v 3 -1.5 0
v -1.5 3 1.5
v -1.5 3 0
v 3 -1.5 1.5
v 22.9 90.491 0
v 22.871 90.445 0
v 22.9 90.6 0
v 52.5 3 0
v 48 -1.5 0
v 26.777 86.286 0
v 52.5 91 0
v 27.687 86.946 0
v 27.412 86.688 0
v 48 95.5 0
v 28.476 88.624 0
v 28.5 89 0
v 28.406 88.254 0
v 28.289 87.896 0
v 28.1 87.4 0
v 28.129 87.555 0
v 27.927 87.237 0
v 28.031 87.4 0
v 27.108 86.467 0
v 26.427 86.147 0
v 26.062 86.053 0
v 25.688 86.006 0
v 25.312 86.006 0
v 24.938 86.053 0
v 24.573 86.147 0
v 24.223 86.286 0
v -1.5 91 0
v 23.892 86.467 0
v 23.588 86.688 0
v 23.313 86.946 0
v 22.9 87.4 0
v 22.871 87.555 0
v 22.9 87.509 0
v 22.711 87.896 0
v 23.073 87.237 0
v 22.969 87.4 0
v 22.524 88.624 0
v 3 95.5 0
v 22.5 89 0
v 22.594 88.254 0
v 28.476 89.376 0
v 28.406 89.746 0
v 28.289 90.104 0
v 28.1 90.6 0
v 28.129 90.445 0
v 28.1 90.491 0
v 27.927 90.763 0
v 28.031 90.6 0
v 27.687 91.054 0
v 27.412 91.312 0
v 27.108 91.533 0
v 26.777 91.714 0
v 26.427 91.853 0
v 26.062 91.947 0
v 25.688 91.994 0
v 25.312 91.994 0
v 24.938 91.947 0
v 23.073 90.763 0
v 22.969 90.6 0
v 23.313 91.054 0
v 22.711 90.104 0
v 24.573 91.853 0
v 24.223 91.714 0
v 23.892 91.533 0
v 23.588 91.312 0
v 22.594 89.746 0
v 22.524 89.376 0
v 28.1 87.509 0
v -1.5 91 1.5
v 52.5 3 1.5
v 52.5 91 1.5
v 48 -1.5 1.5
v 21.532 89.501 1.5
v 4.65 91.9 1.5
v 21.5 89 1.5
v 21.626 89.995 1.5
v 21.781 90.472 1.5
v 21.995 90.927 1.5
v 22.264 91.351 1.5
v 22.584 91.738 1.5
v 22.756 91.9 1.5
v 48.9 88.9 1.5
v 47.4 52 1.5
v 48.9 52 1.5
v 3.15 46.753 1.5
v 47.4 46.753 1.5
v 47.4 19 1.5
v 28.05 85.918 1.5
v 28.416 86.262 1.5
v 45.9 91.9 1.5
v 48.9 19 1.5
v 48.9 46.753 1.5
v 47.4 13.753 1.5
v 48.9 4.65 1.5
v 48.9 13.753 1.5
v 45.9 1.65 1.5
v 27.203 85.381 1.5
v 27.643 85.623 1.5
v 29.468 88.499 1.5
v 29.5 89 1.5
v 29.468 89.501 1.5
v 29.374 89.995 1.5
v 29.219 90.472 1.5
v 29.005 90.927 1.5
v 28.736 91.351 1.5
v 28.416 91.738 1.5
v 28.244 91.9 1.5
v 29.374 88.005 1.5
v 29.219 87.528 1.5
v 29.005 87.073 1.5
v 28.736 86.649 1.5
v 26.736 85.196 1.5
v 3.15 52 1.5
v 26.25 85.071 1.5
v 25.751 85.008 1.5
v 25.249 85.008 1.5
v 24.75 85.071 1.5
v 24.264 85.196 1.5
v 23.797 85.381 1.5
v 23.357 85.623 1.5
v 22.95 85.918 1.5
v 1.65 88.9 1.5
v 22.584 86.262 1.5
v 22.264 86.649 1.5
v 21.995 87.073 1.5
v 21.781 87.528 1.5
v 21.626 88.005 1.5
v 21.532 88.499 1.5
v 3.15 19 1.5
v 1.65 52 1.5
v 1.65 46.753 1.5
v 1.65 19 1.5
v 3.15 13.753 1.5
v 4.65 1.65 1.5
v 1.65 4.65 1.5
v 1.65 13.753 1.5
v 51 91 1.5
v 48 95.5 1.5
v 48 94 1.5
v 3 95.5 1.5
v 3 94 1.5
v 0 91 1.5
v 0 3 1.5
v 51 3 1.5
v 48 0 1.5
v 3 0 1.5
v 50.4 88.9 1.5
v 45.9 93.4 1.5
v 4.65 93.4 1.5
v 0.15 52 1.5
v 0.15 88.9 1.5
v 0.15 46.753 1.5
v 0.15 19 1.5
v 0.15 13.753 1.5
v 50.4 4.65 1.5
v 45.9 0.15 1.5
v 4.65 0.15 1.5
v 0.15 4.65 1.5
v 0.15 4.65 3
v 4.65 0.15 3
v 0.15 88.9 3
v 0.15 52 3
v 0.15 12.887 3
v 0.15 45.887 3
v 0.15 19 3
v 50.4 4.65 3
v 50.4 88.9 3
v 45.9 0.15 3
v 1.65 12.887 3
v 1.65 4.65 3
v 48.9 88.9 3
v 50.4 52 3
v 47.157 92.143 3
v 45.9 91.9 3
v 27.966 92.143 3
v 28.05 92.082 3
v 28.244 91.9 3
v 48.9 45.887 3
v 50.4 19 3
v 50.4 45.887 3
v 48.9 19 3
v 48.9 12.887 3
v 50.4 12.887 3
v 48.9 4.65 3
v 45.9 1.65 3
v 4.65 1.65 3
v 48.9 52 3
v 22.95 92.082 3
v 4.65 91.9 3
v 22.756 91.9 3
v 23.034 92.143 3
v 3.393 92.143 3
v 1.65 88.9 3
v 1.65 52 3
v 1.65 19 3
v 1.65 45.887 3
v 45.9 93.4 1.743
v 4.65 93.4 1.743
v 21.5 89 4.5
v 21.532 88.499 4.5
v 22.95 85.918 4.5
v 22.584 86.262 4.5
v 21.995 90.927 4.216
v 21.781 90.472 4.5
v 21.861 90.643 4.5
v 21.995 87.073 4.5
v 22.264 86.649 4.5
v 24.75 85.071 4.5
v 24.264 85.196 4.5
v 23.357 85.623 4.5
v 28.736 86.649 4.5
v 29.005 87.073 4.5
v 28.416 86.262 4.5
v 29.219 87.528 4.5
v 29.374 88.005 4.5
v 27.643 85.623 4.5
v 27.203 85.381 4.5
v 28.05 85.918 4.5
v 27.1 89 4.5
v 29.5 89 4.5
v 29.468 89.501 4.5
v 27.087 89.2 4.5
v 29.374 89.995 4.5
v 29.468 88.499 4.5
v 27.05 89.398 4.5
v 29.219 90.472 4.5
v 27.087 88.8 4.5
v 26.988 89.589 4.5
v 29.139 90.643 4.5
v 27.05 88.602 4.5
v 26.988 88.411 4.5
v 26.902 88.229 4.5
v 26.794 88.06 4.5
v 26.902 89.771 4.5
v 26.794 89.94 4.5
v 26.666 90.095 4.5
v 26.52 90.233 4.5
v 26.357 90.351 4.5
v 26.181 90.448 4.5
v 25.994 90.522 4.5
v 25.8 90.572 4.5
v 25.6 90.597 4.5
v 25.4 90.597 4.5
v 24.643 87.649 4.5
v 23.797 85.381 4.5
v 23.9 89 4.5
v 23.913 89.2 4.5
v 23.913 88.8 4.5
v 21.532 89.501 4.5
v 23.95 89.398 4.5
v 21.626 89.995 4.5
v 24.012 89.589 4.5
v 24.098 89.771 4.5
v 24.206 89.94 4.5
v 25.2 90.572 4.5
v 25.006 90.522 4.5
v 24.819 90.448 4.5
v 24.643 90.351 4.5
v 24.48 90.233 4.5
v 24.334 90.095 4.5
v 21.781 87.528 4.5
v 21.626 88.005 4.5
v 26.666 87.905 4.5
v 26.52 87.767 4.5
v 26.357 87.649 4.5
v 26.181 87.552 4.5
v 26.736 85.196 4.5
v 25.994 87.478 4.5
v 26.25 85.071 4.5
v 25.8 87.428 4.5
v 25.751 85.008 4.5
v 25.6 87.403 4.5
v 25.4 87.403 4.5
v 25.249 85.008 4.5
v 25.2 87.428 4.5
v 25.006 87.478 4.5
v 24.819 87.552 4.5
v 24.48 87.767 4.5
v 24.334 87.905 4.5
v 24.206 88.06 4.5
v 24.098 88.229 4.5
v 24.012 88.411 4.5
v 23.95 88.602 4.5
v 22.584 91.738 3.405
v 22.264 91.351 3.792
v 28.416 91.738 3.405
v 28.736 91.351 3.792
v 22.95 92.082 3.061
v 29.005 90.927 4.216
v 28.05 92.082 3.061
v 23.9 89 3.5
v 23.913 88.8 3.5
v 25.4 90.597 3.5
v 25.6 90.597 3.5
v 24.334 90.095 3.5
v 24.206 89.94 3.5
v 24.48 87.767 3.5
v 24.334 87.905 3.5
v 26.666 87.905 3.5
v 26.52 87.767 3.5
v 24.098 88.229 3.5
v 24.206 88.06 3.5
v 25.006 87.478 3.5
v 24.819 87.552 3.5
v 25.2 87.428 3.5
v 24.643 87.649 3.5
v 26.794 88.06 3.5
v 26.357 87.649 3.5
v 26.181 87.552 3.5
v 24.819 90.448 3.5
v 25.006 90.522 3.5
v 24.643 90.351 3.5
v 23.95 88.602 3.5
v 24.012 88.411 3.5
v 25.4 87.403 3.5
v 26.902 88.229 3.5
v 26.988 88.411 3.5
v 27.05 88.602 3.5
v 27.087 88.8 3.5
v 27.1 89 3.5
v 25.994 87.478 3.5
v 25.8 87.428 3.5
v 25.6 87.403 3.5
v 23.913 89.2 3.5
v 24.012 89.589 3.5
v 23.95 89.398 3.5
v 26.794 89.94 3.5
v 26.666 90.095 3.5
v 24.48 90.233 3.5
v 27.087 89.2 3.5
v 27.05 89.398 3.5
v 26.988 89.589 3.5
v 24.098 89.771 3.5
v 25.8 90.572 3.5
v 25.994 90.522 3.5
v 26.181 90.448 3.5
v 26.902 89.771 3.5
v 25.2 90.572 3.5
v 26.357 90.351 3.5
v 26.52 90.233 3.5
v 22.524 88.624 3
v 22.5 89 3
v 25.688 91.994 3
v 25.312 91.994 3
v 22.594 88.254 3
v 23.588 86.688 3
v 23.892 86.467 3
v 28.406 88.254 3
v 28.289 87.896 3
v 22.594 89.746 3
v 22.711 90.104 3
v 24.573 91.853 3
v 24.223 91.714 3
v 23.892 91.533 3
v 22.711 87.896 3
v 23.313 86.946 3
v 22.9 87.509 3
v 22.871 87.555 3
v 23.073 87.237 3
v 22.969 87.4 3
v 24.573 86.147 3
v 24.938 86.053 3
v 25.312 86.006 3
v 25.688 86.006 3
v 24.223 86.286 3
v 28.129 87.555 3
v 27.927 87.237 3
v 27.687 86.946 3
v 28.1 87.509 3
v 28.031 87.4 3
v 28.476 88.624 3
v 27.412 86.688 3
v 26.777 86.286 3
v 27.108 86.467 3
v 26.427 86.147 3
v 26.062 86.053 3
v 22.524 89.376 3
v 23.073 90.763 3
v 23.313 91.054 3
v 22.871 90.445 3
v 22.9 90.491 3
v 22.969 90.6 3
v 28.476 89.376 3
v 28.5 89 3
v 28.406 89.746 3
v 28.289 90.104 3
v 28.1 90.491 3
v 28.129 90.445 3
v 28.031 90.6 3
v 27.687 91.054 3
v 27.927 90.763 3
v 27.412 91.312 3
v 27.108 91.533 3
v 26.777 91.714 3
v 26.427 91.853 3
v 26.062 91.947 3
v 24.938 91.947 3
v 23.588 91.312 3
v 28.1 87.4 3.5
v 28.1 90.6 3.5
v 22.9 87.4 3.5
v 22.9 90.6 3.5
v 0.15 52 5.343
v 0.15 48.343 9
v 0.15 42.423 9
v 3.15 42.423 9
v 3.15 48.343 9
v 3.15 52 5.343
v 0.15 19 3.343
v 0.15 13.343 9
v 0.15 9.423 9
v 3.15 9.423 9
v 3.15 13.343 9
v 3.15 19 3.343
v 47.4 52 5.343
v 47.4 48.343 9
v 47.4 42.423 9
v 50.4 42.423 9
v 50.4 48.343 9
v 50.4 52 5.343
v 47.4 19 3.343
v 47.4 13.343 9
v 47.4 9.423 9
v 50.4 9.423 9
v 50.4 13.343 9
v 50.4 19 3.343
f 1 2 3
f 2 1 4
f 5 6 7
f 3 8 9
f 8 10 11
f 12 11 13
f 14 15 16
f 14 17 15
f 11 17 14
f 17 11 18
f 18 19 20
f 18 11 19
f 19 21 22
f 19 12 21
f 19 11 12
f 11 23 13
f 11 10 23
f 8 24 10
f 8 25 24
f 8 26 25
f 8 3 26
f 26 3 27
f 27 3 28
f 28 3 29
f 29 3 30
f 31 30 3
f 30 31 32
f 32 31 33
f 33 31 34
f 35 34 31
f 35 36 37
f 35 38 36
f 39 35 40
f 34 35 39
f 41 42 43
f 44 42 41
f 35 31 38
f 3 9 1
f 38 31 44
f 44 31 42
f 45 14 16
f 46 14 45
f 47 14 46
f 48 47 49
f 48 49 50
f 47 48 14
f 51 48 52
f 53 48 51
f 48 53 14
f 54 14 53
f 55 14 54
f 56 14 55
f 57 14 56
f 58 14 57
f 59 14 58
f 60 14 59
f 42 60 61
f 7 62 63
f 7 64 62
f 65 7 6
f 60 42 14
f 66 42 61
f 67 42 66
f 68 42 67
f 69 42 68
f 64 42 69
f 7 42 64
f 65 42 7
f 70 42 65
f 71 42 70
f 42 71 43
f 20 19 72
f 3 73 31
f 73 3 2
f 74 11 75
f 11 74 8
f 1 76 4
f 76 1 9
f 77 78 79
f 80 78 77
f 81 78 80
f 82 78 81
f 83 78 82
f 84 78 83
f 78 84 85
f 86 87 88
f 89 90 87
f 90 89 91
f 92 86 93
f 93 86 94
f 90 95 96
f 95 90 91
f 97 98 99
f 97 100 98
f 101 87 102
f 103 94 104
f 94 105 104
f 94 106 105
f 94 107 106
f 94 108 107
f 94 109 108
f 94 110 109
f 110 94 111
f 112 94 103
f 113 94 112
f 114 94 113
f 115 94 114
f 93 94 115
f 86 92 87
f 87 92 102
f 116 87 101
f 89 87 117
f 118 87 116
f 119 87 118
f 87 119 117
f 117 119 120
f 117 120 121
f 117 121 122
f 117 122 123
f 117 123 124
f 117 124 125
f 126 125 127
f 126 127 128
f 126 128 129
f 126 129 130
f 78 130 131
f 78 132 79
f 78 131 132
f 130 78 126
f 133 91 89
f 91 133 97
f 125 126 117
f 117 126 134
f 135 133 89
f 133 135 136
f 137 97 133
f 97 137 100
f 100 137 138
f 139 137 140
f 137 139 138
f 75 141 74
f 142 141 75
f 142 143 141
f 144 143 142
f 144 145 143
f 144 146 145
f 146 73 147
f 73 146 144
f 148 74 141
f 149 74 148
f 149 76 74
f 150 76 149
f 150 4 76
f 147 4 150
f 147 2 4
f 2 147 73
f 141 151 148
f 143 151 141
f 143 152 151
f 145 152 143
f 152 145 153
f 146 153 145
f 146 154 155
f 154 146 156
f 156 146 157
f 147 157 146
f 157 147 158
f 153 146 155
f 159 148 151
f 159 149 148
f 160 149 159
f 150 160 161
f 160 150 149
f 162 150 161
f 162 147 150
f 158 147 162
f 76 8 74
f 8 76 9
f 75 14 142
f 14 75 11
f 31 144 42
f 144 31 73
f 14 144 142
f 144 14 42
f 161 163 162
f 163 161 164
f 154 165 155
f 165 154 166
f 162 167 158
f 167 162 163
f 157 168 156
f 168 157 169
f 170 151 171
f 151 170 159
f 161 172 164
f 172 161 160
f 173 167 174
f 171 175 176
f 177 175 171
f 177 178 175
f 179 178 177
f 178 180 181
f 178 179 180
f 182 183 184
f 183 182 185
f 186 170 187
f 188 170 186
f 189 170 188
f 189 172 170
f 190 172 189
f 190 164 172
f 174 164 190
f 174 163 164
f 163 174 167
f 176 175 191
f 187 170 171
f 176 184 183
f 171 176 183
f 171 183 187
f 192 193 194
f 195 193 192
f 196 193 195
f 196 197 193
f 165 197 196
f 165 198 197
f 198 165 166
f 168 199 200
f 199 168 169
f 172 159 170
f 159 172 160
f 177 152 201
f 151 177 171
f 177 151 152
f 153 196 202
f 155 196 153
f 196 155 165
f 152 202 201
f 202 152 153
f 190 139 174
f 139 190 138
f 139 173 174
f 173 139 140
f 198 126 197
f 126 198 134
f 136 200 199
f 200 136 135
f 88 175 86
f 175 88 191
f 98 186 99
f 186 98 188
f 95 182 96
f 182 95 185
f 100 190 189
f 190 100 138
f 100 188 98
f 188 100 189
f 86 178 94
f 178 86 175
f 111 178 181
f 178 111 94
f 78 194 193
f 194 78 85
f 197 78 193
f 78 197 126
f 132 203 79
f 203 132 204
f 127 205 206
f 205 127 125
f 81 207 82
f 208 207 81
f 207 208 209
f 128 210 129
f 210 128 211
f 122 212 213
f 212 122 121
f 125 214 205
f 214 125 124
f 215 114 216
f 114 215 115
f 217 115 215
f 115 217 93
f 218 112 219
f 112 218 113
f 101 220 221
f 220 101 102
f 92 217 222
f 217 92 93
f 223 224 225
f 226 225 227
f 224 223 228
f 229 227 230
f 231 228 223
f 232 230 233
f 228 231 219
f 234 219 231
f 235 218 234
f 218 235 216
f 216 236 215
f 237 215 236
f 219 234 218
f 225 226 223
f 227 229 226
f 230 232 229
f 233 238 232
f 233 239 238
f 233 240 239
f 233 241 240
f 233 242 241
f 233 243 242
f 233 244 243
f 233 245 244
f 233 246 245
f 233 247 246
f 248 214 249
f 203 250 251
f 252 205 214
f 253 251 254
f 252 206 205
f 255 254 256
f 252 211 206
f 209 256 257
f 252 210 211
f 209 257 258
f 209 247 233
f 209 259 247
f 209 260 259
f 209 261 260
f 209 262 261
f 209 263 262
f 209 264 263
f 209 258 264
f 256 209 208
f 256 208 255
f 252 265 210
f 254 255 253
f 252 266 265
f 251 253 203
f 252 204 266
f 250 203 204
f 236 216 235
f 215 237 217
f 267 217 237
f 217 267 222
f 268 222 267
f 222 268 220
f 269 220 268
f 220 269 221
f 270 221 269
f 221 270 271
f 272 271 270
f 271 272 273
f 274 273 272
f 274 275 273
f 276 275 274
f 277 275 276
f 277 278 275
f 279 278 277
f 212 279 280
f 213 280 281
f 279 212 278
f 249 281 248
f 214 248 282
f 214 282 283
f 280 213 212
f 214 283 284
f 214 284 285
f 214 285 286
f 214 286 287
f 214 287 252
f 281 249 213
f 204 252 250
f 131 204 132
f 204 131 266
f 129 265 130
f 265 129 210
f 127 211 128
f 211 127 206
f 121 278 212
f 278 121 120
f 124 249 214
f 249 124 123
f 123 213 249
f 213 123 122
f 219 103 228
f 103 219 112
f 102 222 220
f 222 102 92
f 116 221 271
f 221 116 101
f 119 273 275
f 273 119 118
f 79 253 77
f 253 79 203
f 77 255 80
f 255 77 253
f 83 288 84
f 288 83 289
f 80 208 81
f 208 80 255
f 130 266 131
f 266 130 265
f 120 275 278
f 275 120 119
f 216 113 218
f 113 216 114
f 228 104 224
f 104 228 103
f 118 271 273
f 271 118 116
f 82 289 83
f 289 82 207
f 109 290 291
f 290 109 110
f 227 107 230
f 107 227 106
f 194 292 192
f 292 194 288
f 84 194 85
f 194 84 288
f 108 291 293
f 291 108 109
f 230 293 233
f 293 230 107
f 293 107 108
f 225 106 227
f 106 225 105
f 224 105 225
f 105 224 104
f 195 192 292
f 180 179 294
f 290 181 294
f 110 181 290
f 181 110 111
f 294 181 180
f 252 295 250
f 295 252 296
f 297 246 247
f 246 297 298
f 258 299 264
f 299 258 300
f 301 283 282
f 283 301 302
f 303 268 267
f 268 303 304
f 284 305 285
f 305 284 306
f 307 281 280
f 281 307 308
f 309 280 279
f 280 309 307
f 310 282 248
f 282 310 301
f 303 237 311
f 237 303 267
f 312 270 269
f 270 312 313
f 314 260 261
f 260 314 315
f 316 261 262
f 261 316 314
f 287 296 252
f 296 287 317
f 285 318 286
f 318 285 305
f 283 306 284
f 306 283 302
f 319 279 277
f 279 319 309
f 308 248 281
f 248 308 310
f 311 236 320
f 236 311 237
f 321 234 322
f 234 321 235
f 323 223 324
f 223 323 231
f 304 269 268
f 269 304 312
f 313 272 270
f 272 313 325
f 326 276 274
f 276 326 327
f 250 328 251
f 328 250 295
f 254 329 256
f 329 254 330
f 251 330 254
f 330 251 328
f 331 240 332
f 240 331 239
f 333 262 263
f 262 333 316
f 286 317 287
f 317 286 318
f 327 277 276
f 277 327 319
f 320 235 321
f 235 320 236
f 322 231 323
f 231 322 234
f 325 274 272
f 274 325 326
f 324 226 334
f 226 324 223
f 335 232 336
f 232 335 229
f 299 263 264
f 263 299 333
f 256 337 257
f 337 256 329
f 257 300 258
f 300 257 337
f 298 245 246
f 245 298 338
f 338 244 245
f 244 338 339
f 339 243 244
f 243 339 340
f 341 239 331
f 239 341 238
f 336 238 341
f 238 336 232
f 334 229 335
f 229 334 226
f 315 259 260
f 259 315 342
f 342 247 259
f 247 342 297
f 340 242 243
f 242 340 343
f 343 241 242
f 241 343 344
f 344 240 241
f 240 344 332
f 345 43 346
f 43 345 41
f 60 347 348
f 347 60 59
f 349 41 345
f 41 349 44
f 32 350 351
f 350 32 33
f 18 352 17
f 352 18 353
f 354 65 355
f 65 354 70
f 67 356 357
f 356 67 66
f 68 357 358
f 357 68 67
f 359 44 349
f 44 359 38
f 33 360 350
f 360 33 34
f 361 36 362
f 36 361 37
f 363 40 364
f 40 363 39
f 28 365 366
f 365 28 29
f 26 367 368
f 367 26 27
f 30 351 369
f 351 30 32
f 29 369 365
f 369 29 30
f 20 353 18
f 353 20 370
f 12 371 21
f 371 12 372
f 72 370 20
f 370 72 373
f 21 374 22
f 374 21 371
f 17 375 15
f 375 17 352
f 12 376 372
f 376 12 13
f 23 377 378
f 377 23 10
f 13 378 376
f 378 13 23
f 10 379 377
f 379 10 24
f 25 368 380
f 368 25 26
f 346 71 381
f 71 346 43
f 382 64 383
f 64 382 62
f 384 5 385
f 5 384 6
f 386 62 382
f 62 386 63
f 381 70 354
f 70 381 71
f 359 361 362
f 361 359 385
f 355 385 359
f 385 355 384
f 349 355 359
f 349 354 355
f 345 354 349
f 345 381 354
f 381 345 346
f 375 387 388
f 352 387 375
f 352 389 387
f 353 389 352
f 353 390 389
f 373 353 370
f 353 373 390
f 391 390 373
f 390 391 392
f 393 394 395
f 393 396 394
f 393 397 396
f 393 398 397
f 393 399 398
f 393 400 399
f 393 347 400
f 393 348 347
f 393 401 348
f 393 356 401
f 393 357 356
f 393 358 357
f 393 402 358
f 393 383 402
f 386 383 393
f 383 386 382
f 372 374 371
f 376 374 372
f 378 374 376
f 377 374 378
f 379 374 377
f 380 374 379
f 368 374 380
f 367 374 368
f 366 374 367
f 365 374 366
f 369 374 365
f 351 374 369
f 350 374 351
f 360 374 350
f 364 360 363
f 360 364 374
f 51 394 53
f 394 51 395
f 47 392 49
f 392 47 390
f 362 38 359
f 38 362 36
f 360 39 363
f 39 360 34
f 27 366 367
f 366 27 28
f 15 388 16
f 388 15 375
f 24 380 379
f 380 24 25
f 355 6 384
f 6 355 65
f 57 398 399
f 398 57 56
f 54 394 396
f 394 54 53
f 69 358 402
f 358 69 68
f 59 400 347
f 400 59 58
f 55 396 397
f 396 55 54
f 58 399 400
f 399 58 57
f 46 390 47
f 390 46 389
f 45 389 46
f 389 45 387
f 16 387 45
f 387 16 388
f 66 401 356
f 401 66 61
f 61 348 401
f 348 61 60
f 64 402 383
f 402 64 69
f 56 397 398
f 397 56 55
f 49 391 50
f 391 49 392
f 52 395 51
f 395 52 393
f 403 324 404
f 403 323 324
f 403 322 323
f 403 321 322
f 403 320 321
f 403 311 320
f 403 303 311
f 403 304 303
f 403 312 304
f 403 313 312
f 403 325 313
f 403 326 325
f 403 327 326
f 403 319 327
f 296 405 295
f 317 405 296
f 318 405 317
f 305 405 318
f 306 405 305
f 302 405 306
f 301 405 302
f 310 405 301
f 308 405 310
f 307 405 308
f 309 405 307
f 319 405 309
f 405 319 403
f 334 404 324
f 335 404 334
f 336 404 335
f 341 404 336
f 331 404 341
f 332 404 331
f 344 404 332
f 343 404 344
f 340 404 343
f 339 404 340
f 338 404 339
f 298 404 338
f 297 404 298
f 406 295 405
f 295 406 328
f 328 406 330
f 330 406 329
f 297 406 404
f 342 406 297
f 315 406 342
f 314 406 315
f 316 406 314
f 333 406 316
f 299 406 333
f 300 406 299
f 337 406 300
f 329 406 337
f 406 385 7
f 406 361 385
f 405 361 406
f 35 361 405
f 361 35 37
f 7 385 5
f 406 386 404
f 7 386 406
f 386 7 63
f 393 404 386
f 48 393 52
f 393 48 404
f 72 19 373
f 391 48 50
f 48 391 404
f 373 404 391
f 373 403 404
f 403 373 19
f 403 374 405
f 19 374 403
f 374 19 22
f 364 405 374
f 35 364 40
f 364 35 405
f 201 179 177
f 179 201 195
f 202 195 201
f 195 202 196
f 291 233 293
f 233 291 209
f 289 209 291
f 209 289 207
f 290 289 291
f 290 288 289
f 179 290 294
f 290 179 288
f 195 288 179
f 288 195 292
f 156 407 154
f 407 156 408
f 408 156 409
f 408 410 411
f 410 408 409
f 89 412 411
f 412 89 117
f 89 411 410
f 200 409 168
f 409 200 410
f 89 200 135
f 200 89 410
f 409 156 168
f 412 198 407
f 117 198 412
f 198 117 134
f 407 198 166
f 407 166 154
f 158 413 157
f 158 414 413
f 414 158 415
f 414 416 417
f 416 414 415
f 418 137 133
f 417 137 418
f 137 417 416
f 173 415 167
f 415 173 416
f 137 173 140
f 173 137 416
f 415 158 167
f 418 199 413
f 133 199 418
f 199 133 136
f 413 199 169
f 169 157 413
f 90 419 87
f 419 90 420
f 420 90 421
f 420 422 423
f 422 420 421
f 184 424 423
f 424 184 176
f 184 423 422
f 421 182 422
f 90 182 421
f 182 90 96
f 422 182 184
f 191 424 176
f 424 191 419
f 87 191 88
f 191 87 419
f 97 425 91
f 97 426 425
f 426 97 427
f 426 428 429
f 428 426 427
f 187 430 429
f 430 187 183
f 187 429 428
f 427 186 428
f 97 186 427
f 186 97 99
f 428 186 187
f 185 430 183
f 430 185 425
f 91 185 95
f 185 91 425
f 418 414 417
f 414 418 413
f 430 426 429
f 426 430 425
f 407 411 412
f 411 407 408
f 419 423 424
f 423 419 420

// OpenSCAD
// PRUSA MM upgrade
// SuperSwitch-cover-v2
// GNU GPL v3
// Josef Průša <iam@josefprusa.cz> and contributors
// http://www.reprap.org/wiki/Prusa_Mendel
// http://prusamendel.org

$fn=50;
heightY=94;
widthX=51;
wall=1.5;
txt="Y";
pcb = 14;  // pcb height over bottom

boxtop(51,heightY,2,3,1.5);

module triangle(long,width,ukos){
  translate([0,8,-0.5]) cube([width,long,8+0.5],center=false);
    difference(){
      cube([width,8,8],center=false);
        translate([-1,3,-5]) rotate([30,0,0])cube([6,6,13],center=false);
        if (ukos==1){
        }
    }
}

module boxtop(x,y,z,zz,s){
  difference(){
    union(){
      box(x,y,s,zz,s);
      translate([1.1*s,1.1*s,0]) box(x-2.5*s,y-2.5*s,2*s,zz,s);
      translate([widthX/2,heightY-5,0]) rotate([0,0,180]) cylinder(h=s+3,r=4,center=false);
    }
    translate([widthX/2,heightY-5,-2]) rotate([0,0,180]) cylinder(h=10,r=1.6,center=false);
    translate([widthX/2,heightY-5,-1]) rotate([0,0,180]) cylinder(h=4,r=3,center=false);
    translate([widthX/2,heightY-5,1]) rotate([0,0,180]) cube([5.2,3.2,5],center=true);

    translate([widthX/2,92.2,8.6]) rotate([45,0,0])cube([widthX,8,12],center=true);
    // TXT
    translate([widthX/2,heightY/2-12,3]){
      rotate([0,180,0]){
        linear_extrude(height=wall+2,center=false,convexity=5,twist=0,slices=20,scale=1.0){}
      }
    }
  }
  difference(){
    union(){
      translate([0.15,heightY/2-7,1]) rotate([0,0,0]) triangle(4,3,0);
      translate([0.15,7,1]) rotate([0,0,0]) triangle(4,3,0);

      translate([widthX-3.6,heightY/2-7,1]) rotate([0,0,0]) triangle(4,3,0);
      translate([widthX-3.6,7,1]) rotate([0,0,0]) triangle(4,3,0);
    }
    translate([widthX/2,20,8]) rotate([45,0,0])cube([widthX,8,12],center=true);
    translate([widthX/2,55,8]) rotate([45,0,0])cube([widthX,8,12],center=true);
    translate([widthX/2,90,8]) rotate([45,0,0])cube([widthX,8,12],center=true);
  }
}

module box(x,y,z,zz,s){  // x y z - round edges
  difference(){
    union(){
      hull(){
        translate([zz,zz,0]) cylinder(h=z,r=zz+s,center=false,$fn=4);
        translate([x-zz,zz,0]) cylinder(h=z,r=zz+s,center=false,$fn=4);
        translate([zz,y-zz,0]) cylinder(h=z,r=zz+s,center=false,$fn=4);
        translate([x-zz,y-zz,0]) cylinder(h=z,r=zz+s,center=false,$fn=4);
      }
    }
    hull(){
      translate([zz,zz,s]) cylinder(h=z,r=zz,center=false,$fn=4);
      translate([x-zz,zz,s]) cylinder(h=z,r=zz,center=false,$fn=4);
      translate([zz,y-zz,s]) cylinder(h=z,r=zz,center=false,$fn=4);
      translate([x-zz,y-zz,s]) cylinder(h=z,r=zz,center=false,$fn=4);
    }
  }
}
